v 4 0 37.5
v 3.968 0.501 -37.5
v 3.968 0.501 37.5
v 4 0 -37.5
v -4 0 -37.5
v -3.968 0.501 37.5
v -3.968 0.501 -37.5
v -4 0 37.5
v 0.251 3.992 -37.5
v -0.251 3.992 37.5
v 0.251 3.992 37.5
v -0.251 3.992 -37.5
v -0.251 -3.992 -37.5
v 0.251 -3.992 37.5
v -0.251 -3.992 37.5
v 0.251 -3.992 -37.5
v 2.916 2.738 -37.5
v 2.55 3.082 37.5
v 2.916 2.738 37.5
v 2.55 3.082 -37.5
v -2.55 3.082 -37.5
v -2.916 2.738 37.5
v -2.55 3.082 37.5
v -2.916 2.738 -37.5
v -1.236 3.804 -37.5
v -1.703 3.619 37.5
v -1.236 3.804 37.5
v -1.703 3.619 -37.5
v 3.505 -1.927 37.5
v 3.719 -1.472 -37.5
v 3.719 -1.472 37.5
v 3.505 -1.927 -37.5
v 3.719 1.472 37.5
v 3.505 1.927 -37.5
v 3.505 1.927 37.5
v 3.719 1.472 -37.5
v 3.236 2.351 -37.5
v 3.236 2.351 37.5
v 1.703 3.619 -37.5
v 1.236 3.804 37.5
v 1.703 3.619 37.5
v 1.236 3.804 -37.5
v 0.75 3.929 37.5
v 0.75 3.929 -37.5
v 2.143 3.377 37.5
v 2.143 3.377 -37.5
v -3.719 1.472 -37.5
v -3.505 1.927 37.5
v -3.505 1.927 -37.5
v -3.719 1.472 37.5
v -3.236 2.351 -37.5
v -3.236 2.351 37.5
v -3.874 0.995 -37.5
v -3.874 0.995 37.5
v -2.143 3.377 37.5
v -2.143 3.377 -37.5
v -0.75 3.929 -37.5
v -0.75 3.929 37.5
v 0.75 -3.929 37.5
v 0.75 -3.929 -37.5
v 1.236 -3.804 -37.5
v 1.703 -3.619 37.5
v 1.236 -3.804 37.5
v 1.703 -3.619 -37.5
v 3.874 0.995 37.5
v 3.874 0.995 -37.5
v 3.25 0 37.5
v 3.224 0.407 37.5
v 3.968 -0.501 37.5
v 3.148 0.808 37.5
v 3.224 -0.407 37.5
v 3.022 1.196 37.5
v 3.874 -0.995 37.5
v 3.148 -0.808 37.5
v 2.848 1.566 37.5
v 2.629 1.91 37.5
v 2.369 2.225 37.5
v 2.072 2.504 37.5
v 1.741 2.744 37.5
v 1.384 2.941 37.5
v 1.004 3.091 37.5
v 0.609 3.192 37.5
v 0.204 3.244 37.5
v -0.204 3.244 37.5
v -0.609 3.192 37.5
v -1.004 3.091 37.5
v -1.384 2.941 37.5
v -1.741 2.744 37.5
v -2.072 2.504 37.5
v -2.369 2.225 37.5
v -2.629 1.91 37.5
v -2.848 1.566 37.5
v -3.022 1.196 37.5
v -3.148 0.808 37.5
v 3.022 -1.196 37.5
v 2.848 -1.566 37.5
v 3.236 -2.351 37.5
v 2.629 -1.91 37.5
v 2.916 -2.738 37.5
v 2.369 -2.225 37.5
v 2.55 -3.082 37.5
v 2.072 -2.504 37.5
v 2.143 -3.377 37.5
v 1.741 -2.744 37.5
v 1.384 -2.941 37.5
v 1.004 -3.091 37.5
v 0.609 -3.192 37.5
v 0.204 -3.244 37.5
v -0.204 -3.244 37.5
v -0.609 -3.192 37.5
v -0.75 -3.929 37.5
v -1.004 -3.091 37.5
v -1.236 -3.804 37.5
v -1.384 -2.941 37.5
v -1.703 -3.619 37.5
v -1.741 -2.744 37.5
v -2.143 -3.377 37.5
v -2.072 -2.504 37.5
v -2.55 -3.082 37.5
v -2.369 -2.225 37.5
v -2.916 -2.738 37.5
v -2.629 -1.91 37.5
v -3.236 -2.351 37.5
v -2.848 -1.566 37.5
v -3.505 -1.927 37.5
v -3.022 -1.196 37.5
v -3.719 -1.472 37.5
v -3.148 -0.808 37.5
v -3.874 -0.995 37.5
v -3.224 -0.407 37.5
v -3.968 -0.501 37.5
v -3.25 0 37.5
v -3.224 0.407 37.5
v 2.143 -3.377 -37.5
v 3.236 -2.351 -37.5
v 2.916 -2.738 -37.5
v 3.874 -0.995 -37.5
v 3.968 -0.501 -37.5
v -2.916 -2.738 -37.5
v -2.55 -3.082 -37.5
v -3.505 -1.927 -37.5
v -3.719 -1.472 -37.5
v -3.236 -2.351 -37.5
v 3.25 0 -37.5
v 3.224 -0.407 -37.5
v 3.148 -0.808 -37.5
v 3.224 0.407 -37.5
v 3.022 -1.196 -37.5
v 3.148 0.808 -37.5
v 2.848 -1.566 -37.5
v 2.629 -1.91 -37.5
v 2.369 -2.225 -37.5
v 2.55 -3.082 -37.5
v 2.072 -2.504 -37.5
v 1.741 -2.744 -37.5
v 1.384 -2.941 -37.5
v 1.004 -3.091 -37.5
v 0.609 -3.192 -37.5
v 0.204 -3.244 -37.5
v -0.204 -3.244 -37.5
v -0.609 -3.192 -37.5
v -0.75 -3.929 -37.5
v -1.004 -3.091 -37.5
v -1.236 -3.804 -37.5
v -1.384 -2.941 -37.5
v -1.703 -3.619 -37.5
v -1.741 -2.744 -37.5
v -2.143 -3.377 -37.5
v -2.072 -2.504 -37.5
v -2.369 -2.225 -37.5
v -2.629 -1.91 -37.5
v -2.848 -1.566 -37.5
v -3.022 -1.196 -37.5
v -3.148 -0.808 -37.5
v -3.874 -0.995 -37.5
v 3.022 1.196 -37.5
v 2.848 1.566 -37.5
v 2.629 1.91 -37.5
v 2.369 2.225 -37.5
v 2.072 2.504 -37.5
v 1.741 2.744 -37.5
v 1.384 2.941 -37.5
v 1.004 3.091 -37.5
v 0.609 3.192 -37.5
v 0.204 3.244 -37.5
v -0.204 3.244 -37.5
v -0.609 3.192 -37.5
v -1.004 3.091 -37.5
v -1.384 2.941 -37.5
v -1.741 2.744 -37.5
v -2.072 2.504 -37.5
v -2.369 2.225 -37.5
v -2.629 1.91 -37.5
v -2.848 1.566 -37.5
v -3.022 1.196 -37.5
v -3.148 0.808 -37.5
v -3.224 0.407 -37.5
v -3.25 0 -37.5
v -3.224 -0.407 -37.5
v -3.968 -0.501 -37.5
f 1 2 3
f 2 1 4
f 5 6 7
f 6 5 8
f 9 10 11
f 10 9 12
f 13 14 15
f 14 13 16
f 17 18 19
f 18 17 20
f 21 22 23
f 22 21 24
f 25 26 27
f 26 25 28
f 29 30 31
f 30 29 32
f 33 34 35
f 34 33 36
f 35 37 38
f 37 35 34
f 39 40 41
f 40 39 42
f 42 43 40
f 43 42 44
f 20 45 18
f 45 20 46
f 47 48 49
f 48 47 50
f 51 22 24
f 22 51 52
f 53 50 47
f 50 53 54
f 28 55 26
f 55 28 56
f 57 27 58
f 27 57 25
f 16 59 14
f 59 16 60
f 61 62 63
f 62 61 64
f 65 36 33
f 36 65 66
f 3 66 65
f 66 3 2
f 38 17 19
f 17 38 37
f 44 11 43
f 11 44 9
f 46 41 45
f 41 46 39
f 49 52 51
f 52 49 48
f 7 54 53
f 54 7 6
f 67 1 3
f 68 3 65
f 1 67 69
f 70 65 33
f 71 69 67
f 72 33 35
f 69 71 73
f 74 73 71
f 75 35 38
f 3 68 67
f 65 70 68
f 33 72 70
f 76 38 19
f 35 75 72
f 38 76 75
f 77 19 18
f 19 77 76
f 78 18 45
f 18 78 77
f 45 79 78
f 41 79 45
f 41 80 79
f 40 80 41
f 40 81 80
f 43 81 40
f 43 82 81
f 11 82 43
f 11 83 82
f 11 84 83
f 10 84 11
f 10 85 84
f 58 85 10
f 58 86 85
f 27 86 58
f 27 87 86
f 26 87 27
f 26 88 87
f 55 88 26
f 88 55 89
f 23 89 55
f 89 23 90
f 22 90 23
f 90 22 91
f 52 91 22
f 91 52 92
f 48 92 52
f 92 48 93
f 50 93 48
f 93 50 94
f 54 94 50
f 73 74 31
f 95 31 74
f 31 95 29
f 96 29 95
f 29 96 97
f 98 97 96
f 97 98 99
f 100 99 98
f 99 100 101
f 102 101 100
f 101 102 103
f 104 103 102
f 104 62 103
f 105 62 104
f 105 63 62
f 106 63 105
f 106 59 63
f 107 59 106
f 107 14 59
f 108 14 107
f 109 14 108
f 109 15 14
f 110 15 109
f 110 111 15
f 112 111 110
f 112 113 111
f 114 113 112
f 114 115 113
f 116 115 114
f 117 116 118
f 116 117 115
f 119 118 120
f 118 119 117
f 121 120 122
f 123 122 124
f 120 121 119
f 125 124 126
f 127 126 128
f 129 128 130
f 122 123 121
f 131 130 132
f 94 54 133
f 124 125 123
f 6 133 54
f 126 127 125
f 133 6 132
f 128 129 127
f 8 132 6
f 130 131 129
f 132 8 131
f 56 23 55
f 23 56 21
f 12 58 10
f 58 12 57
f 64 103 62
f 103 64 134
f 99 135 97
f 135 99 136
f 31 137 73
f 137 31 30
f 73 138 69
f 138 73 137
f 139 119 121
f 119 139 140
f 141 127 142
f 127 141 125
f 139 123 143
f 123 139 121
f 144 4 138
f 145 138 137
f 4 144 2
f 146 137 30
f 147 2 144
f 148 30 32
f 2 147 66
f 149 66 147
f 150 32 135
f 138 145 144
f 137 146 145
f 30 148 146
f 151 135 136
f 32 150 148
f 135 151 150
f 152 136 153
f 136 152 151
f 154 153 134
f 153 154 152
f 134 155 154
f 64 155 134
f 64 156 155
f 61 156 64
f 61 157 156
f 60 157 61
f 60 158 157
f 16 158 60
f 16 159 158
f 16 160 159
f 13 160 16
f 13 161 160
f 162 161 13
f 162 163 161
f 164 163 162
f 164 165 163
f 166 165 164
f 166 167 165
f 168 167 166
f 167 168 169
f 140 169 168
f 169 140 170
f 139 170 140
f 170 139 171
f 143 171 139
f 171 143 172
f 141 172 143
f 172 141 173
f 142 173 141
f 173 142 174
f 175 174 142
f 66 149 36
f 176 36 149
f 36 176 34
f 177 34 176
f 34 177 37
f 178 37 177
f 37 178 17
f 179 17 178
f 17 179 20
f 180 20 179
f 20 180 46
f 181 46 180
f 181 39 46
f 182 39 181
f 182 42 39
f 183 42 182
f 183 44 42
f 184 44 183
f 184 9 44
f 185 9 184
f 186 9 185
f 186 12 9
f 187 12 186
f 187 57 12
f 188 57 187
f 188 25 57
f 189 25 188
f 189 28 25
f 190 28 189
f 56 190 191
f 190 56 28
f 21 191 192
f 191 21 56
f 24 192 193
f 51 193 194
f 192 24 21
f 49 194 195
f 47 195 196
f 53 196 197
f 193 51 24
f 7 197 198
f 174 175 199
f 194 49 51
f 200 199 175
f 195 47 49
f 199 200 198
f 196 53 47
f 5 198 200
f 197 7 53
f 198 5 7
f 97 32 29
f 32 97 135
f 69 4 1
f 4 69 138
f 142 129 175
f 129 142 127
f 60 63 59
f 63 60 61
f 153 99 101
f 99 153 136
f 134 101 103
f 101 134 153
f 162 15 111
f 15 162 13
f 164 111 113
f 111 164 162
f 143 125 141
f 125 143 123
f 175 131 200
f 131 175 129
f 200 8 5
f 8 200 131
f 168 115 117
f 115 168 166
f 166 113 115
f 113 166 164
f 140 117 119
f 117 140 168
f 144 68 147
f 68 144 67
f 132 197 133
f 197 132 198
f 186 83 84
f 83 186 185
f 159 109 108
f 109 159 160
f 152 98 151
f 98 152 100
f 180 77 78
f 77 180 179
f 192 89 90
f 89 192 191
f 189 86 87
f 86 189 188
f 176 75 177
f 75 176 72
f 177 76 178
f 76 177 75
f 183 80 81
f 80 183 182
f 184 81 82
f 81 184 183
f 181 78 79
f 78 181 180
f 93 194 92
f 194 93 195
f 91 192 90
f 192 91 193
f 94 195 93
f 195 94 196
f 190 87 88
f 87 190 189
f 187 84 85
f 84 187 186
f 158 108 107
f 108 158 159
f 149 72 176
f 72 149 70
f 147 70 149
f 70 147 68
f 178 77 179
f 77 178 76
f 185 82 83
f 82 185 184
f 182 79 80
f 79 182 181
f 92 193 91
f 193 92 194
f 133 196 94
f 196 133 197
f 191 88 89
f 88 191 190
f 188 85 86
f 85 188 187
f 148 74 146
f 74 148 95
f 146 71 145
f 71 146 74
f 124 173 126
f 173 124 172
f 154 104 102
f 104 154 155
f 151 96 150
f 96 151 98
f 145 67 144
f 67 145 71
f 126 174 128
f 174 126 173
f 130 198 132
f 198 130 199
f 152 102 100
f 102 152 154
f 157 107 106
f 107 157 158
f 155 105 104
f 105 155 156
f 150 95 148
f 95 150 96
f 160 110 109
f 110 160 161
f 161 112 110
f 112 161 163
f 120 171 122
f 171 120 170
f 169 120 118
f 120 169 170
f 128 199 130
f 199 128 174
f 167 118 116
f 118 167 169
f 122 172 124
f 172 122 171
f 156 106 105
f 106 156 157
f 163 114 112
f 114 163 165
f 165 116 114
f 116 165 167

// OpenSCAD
$fn = 50;


difference() {
	union() {
		translate(v = [0, 0, -37.5000000000]) {
			cylinder(h = 75, r = 4.0000000000);
		}
	}
	union() {
		translate(v = [0, 0, -100.0000000000]) {
			cylinder(h = 200, r = 3.2500000000);
		}
	}
}
